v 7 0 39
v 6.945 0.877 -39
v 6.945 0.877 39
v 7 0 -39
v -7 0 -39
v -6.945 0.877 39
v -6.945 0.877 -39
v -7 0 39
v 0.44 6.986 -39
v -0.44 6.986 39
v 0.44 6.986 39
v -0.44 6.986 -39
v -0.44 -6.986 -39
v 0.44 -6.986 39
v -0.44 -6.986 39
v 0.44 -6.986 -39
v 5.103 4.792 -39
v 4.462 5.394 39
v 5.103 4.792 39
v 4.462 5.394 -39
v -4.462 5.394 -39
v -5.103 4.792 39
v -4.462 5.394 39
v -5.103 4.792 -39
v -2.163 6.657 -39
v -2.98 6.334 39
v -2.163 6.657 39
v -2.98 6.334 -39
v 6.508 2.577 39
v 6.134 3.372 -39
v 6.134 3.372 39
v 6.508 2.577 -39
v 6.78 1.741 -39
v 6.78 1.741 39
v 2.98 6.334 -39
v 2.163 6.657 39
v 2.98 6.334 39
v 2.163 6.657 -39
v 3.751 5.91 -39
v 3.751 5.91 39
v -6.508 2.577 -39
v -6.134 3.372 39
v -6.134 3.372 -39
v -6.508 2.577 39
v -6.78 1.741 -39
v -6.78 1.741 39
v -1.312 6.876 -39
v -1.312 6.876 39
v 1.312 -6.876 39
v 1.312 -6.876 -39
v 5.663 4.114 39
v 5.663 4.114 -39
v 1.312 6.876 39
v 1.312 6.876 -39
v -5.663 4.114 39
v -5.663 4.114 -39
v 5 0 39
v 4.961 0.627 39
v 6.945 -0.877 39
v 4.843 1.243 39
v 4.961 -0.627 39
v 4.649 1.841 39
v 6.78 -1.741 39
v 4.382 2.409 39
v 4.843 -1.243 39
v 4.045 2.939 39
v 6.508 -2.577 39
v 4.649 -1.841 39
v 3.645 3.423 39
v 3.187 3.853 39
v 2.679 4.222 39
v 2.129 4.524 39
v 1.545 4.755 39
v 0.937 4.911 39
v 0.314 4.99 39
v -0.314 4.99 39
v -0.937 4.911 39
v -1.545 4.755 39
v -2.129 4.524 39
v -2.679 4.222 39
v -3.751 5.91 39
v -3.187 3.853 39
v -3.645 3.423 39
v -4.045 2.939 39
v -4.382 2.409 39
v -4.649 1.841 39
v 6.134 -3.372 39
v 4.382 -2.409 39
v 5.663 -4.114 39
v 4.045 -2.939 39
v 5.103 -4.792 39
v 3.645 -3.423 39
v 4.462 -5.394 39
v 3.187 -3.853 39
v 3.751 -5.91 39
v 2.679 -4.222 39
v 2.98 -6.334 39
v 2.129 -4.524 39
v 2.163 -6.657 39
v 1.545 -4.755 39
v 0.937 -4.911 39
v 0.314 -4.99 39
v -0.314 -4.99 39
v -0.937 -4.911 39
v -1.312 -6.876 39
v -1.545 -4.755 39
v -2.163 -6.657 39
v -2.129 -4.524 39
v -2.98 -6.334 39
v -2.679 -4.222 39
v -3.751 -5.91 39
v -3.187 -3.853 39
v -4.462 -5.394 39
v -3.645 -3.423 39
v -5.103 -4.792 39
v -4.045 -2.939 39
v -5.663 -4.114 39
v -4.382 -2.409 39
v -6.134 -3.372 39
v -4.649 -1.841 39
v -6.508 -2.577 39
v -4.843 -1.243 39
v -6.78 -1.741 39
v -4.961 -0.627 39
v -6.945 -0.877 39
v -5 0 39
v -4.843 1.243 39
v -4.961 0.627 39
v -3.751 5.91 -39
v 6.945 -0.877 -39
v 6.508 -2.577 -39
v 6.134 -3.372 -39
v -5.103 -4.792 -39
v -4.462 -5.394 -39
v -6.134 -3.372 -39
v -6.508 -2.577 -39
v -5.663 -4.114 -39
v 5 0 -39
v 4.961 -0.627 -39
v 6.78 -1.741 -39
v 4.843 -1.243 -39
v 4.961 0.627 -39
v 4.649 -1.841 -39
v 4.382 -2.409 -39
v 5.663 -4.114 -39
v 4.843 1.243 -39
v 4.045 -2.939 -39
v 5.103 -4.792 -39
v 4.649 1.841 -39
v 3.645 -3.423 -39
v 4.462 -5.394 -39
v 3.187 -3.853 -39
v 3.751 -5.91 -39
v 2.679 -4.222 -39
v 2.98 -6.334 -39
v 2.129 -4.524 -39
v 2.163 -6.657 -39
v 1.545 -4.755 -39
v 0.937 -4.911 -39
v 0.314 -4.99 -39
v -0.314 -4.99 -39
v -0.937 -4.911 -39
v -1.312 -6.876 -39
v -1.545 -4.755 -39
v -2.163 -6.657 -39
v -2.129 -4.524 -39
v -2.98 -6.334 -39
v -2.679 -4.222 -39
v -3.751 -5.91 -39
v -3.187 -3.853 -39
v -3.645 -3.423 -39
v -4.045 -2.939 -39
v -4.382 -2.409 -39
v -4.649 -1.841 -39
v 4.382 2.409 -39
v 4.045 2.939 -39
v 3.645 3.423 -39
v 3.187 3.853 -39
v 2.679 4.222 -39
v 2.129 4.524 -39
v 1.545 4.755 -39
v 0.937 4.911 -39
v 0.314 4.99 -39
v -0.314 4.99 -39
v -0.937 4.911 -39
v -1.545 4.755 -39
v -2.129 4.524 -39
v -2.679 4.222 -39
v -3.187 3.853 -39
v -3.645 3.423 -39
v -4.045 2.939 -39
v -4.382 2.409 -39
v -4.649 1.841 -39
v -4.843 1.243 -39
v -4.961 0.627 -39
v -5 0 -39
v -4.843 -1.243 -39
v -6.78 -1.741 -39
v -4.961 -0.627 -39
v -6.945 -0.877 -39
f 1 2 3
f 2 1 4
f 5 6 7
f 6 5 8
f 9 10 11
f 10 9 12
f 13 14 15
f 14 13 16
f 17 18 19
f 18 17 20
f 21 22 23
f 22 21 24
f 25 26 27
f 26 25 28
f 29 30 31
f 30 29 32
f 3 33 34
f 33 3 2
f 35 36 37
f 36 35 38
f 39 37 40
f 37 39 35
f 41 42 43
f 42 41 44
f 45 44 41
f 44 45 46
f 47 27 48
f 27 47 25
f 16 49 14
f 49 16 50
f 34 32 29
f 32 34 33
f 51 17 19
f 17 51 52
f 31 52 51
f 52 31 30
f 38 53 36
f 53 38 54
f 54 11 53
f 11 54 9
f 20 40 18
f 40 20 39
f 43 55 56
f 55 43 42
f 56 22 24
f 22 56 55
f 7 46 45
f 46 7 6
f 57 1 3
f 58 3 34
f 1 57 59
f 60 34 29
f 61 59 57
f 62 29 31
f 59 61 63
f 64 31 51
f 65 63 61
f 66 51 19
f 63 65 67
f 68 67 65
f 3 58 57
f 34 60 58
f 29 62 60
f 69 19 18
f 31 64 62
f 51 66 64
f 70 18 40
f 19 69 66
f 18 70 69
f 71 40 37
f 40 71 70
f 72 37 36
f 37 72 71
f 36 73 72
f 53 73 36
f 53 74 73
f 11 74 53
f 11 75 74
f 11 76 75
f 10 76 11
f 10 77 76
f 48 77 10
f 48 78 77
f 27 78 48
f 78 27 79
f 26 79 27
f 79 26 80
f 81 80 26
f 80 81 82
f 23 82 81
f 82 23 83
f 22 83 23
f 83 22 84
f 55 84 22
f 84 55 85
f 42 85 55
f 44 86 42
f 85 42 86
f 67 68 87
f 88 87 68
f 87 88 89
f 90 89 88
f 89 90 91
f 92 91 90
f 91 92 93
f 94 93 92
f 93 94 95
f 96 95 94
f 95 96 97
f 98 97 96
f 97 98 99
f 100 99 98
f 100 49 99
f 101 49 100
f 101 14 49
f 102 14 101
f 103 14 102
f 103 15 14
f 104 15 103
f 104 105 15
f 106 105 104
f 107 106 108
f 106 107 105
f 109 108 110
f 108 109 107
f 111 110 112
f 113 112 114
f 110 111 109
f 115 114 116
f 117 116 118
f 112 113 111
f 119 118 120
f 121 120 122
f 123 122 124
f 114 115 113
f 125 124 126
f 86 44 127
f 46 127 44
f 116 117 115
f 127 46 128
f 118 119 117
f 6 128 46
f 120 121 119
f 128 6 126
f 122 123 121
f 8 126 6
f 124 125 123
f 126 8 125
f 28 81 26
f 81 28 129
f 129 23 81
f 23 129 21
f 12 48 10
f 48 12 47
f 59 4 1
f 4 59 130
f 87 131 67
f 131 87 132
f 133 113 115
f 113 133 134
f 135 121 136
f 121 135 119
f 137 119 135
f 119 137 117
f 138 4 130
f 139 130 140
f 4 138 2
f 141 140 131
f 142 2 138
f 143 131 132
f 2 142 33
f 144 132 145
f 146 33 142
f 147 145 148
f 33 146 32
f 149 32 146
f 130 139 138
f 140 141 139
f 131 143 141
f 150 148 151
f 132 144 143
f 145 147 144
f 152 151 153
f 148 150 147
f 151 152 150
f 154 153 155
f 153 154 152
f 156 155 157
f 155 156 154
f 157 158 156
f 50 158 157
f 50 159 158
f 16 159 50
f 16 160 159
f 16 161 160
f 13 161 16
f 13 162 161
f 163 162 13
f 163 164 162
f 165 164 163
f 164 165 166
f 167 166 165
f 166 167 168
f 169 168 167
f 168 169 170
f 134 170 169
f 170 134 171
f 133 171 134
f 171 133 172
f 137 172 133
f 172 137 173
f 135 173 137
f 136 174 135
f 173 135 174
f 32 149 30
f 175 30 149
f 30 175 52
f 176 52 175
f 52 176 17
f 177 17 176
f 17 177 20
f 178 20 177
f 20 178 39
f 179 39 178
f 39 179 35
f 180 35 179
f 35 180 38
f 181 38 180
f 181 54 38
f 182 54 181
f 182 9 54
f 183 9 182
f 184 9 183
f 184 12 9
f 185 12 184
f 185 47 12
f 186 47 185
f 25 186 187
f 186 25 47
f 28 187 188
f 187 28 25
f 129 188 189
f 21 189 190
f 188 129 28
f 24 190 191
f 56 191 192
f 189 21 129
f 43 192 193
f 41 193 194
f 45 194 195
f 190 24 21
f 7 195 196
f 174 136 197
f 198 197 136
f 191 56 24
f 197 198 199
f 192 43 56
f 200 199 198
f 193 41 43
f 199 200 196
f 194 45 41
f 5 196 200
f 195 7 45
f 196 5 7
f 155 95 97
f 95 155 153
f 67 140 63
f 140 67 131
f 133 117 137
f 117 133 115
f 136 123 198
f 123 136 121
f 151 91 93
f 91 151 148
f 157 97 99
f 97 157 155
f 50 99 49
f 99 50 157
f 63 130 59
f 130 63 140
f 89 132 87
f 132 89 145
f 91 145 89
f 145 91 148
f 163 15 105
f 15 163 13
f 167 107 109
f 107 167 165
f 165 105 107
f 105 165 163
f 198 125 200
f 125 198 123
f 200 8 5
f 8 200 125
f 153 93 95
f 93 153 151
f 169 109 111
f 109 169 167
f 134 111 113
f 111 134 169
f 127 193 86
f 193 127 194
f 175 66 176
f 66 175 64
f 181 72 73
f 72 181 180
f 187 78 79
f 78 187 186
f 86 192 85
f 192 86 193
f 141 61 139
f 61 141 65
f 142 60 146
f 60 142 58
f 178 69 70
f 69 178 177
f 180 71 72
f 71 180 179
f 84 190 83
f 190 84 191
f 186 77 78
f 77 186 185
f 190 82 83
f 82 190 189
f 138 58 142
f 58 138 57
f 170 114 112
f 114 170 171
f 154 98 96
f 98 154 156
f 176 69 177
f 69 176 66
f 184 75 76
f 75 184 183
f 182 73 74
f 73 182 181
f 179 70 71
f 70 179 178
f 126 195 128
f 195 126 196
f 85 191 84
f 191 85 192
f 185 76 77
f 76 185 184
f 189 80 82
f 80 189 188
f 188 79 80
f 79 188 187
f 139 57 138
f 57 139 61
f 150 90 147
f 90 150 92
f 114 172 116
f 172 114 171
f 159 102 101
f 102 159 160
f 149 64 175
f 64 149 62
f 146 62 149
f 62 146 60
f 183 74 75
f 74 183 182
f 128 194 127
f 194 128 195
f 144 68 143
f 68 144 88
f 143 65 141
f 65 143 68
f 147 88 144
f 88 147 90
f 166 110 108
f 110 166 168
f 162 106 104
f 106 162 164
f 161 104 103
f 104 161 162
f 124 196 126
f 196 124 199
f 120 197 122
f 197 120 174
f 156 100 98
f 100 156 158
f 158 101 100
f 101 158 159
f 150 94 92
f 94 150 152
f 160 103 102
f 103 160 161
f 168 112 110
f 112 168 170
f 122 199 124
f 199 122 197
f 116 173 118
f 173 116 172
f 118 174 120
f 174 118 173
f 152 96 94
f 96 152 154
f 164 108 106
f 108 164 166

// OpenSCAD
$fn = 50;


difference() {
	union() {
		translate(v = [0, 0, -39.0000000000]) {
			cylinder(h = 78, r = 7.0000000000);
		}
	}
	union() {
		translate(v = [0, 0, -100.0000000000]) {
			cylinder(h = 200, r = 5);
		}
	}
}
